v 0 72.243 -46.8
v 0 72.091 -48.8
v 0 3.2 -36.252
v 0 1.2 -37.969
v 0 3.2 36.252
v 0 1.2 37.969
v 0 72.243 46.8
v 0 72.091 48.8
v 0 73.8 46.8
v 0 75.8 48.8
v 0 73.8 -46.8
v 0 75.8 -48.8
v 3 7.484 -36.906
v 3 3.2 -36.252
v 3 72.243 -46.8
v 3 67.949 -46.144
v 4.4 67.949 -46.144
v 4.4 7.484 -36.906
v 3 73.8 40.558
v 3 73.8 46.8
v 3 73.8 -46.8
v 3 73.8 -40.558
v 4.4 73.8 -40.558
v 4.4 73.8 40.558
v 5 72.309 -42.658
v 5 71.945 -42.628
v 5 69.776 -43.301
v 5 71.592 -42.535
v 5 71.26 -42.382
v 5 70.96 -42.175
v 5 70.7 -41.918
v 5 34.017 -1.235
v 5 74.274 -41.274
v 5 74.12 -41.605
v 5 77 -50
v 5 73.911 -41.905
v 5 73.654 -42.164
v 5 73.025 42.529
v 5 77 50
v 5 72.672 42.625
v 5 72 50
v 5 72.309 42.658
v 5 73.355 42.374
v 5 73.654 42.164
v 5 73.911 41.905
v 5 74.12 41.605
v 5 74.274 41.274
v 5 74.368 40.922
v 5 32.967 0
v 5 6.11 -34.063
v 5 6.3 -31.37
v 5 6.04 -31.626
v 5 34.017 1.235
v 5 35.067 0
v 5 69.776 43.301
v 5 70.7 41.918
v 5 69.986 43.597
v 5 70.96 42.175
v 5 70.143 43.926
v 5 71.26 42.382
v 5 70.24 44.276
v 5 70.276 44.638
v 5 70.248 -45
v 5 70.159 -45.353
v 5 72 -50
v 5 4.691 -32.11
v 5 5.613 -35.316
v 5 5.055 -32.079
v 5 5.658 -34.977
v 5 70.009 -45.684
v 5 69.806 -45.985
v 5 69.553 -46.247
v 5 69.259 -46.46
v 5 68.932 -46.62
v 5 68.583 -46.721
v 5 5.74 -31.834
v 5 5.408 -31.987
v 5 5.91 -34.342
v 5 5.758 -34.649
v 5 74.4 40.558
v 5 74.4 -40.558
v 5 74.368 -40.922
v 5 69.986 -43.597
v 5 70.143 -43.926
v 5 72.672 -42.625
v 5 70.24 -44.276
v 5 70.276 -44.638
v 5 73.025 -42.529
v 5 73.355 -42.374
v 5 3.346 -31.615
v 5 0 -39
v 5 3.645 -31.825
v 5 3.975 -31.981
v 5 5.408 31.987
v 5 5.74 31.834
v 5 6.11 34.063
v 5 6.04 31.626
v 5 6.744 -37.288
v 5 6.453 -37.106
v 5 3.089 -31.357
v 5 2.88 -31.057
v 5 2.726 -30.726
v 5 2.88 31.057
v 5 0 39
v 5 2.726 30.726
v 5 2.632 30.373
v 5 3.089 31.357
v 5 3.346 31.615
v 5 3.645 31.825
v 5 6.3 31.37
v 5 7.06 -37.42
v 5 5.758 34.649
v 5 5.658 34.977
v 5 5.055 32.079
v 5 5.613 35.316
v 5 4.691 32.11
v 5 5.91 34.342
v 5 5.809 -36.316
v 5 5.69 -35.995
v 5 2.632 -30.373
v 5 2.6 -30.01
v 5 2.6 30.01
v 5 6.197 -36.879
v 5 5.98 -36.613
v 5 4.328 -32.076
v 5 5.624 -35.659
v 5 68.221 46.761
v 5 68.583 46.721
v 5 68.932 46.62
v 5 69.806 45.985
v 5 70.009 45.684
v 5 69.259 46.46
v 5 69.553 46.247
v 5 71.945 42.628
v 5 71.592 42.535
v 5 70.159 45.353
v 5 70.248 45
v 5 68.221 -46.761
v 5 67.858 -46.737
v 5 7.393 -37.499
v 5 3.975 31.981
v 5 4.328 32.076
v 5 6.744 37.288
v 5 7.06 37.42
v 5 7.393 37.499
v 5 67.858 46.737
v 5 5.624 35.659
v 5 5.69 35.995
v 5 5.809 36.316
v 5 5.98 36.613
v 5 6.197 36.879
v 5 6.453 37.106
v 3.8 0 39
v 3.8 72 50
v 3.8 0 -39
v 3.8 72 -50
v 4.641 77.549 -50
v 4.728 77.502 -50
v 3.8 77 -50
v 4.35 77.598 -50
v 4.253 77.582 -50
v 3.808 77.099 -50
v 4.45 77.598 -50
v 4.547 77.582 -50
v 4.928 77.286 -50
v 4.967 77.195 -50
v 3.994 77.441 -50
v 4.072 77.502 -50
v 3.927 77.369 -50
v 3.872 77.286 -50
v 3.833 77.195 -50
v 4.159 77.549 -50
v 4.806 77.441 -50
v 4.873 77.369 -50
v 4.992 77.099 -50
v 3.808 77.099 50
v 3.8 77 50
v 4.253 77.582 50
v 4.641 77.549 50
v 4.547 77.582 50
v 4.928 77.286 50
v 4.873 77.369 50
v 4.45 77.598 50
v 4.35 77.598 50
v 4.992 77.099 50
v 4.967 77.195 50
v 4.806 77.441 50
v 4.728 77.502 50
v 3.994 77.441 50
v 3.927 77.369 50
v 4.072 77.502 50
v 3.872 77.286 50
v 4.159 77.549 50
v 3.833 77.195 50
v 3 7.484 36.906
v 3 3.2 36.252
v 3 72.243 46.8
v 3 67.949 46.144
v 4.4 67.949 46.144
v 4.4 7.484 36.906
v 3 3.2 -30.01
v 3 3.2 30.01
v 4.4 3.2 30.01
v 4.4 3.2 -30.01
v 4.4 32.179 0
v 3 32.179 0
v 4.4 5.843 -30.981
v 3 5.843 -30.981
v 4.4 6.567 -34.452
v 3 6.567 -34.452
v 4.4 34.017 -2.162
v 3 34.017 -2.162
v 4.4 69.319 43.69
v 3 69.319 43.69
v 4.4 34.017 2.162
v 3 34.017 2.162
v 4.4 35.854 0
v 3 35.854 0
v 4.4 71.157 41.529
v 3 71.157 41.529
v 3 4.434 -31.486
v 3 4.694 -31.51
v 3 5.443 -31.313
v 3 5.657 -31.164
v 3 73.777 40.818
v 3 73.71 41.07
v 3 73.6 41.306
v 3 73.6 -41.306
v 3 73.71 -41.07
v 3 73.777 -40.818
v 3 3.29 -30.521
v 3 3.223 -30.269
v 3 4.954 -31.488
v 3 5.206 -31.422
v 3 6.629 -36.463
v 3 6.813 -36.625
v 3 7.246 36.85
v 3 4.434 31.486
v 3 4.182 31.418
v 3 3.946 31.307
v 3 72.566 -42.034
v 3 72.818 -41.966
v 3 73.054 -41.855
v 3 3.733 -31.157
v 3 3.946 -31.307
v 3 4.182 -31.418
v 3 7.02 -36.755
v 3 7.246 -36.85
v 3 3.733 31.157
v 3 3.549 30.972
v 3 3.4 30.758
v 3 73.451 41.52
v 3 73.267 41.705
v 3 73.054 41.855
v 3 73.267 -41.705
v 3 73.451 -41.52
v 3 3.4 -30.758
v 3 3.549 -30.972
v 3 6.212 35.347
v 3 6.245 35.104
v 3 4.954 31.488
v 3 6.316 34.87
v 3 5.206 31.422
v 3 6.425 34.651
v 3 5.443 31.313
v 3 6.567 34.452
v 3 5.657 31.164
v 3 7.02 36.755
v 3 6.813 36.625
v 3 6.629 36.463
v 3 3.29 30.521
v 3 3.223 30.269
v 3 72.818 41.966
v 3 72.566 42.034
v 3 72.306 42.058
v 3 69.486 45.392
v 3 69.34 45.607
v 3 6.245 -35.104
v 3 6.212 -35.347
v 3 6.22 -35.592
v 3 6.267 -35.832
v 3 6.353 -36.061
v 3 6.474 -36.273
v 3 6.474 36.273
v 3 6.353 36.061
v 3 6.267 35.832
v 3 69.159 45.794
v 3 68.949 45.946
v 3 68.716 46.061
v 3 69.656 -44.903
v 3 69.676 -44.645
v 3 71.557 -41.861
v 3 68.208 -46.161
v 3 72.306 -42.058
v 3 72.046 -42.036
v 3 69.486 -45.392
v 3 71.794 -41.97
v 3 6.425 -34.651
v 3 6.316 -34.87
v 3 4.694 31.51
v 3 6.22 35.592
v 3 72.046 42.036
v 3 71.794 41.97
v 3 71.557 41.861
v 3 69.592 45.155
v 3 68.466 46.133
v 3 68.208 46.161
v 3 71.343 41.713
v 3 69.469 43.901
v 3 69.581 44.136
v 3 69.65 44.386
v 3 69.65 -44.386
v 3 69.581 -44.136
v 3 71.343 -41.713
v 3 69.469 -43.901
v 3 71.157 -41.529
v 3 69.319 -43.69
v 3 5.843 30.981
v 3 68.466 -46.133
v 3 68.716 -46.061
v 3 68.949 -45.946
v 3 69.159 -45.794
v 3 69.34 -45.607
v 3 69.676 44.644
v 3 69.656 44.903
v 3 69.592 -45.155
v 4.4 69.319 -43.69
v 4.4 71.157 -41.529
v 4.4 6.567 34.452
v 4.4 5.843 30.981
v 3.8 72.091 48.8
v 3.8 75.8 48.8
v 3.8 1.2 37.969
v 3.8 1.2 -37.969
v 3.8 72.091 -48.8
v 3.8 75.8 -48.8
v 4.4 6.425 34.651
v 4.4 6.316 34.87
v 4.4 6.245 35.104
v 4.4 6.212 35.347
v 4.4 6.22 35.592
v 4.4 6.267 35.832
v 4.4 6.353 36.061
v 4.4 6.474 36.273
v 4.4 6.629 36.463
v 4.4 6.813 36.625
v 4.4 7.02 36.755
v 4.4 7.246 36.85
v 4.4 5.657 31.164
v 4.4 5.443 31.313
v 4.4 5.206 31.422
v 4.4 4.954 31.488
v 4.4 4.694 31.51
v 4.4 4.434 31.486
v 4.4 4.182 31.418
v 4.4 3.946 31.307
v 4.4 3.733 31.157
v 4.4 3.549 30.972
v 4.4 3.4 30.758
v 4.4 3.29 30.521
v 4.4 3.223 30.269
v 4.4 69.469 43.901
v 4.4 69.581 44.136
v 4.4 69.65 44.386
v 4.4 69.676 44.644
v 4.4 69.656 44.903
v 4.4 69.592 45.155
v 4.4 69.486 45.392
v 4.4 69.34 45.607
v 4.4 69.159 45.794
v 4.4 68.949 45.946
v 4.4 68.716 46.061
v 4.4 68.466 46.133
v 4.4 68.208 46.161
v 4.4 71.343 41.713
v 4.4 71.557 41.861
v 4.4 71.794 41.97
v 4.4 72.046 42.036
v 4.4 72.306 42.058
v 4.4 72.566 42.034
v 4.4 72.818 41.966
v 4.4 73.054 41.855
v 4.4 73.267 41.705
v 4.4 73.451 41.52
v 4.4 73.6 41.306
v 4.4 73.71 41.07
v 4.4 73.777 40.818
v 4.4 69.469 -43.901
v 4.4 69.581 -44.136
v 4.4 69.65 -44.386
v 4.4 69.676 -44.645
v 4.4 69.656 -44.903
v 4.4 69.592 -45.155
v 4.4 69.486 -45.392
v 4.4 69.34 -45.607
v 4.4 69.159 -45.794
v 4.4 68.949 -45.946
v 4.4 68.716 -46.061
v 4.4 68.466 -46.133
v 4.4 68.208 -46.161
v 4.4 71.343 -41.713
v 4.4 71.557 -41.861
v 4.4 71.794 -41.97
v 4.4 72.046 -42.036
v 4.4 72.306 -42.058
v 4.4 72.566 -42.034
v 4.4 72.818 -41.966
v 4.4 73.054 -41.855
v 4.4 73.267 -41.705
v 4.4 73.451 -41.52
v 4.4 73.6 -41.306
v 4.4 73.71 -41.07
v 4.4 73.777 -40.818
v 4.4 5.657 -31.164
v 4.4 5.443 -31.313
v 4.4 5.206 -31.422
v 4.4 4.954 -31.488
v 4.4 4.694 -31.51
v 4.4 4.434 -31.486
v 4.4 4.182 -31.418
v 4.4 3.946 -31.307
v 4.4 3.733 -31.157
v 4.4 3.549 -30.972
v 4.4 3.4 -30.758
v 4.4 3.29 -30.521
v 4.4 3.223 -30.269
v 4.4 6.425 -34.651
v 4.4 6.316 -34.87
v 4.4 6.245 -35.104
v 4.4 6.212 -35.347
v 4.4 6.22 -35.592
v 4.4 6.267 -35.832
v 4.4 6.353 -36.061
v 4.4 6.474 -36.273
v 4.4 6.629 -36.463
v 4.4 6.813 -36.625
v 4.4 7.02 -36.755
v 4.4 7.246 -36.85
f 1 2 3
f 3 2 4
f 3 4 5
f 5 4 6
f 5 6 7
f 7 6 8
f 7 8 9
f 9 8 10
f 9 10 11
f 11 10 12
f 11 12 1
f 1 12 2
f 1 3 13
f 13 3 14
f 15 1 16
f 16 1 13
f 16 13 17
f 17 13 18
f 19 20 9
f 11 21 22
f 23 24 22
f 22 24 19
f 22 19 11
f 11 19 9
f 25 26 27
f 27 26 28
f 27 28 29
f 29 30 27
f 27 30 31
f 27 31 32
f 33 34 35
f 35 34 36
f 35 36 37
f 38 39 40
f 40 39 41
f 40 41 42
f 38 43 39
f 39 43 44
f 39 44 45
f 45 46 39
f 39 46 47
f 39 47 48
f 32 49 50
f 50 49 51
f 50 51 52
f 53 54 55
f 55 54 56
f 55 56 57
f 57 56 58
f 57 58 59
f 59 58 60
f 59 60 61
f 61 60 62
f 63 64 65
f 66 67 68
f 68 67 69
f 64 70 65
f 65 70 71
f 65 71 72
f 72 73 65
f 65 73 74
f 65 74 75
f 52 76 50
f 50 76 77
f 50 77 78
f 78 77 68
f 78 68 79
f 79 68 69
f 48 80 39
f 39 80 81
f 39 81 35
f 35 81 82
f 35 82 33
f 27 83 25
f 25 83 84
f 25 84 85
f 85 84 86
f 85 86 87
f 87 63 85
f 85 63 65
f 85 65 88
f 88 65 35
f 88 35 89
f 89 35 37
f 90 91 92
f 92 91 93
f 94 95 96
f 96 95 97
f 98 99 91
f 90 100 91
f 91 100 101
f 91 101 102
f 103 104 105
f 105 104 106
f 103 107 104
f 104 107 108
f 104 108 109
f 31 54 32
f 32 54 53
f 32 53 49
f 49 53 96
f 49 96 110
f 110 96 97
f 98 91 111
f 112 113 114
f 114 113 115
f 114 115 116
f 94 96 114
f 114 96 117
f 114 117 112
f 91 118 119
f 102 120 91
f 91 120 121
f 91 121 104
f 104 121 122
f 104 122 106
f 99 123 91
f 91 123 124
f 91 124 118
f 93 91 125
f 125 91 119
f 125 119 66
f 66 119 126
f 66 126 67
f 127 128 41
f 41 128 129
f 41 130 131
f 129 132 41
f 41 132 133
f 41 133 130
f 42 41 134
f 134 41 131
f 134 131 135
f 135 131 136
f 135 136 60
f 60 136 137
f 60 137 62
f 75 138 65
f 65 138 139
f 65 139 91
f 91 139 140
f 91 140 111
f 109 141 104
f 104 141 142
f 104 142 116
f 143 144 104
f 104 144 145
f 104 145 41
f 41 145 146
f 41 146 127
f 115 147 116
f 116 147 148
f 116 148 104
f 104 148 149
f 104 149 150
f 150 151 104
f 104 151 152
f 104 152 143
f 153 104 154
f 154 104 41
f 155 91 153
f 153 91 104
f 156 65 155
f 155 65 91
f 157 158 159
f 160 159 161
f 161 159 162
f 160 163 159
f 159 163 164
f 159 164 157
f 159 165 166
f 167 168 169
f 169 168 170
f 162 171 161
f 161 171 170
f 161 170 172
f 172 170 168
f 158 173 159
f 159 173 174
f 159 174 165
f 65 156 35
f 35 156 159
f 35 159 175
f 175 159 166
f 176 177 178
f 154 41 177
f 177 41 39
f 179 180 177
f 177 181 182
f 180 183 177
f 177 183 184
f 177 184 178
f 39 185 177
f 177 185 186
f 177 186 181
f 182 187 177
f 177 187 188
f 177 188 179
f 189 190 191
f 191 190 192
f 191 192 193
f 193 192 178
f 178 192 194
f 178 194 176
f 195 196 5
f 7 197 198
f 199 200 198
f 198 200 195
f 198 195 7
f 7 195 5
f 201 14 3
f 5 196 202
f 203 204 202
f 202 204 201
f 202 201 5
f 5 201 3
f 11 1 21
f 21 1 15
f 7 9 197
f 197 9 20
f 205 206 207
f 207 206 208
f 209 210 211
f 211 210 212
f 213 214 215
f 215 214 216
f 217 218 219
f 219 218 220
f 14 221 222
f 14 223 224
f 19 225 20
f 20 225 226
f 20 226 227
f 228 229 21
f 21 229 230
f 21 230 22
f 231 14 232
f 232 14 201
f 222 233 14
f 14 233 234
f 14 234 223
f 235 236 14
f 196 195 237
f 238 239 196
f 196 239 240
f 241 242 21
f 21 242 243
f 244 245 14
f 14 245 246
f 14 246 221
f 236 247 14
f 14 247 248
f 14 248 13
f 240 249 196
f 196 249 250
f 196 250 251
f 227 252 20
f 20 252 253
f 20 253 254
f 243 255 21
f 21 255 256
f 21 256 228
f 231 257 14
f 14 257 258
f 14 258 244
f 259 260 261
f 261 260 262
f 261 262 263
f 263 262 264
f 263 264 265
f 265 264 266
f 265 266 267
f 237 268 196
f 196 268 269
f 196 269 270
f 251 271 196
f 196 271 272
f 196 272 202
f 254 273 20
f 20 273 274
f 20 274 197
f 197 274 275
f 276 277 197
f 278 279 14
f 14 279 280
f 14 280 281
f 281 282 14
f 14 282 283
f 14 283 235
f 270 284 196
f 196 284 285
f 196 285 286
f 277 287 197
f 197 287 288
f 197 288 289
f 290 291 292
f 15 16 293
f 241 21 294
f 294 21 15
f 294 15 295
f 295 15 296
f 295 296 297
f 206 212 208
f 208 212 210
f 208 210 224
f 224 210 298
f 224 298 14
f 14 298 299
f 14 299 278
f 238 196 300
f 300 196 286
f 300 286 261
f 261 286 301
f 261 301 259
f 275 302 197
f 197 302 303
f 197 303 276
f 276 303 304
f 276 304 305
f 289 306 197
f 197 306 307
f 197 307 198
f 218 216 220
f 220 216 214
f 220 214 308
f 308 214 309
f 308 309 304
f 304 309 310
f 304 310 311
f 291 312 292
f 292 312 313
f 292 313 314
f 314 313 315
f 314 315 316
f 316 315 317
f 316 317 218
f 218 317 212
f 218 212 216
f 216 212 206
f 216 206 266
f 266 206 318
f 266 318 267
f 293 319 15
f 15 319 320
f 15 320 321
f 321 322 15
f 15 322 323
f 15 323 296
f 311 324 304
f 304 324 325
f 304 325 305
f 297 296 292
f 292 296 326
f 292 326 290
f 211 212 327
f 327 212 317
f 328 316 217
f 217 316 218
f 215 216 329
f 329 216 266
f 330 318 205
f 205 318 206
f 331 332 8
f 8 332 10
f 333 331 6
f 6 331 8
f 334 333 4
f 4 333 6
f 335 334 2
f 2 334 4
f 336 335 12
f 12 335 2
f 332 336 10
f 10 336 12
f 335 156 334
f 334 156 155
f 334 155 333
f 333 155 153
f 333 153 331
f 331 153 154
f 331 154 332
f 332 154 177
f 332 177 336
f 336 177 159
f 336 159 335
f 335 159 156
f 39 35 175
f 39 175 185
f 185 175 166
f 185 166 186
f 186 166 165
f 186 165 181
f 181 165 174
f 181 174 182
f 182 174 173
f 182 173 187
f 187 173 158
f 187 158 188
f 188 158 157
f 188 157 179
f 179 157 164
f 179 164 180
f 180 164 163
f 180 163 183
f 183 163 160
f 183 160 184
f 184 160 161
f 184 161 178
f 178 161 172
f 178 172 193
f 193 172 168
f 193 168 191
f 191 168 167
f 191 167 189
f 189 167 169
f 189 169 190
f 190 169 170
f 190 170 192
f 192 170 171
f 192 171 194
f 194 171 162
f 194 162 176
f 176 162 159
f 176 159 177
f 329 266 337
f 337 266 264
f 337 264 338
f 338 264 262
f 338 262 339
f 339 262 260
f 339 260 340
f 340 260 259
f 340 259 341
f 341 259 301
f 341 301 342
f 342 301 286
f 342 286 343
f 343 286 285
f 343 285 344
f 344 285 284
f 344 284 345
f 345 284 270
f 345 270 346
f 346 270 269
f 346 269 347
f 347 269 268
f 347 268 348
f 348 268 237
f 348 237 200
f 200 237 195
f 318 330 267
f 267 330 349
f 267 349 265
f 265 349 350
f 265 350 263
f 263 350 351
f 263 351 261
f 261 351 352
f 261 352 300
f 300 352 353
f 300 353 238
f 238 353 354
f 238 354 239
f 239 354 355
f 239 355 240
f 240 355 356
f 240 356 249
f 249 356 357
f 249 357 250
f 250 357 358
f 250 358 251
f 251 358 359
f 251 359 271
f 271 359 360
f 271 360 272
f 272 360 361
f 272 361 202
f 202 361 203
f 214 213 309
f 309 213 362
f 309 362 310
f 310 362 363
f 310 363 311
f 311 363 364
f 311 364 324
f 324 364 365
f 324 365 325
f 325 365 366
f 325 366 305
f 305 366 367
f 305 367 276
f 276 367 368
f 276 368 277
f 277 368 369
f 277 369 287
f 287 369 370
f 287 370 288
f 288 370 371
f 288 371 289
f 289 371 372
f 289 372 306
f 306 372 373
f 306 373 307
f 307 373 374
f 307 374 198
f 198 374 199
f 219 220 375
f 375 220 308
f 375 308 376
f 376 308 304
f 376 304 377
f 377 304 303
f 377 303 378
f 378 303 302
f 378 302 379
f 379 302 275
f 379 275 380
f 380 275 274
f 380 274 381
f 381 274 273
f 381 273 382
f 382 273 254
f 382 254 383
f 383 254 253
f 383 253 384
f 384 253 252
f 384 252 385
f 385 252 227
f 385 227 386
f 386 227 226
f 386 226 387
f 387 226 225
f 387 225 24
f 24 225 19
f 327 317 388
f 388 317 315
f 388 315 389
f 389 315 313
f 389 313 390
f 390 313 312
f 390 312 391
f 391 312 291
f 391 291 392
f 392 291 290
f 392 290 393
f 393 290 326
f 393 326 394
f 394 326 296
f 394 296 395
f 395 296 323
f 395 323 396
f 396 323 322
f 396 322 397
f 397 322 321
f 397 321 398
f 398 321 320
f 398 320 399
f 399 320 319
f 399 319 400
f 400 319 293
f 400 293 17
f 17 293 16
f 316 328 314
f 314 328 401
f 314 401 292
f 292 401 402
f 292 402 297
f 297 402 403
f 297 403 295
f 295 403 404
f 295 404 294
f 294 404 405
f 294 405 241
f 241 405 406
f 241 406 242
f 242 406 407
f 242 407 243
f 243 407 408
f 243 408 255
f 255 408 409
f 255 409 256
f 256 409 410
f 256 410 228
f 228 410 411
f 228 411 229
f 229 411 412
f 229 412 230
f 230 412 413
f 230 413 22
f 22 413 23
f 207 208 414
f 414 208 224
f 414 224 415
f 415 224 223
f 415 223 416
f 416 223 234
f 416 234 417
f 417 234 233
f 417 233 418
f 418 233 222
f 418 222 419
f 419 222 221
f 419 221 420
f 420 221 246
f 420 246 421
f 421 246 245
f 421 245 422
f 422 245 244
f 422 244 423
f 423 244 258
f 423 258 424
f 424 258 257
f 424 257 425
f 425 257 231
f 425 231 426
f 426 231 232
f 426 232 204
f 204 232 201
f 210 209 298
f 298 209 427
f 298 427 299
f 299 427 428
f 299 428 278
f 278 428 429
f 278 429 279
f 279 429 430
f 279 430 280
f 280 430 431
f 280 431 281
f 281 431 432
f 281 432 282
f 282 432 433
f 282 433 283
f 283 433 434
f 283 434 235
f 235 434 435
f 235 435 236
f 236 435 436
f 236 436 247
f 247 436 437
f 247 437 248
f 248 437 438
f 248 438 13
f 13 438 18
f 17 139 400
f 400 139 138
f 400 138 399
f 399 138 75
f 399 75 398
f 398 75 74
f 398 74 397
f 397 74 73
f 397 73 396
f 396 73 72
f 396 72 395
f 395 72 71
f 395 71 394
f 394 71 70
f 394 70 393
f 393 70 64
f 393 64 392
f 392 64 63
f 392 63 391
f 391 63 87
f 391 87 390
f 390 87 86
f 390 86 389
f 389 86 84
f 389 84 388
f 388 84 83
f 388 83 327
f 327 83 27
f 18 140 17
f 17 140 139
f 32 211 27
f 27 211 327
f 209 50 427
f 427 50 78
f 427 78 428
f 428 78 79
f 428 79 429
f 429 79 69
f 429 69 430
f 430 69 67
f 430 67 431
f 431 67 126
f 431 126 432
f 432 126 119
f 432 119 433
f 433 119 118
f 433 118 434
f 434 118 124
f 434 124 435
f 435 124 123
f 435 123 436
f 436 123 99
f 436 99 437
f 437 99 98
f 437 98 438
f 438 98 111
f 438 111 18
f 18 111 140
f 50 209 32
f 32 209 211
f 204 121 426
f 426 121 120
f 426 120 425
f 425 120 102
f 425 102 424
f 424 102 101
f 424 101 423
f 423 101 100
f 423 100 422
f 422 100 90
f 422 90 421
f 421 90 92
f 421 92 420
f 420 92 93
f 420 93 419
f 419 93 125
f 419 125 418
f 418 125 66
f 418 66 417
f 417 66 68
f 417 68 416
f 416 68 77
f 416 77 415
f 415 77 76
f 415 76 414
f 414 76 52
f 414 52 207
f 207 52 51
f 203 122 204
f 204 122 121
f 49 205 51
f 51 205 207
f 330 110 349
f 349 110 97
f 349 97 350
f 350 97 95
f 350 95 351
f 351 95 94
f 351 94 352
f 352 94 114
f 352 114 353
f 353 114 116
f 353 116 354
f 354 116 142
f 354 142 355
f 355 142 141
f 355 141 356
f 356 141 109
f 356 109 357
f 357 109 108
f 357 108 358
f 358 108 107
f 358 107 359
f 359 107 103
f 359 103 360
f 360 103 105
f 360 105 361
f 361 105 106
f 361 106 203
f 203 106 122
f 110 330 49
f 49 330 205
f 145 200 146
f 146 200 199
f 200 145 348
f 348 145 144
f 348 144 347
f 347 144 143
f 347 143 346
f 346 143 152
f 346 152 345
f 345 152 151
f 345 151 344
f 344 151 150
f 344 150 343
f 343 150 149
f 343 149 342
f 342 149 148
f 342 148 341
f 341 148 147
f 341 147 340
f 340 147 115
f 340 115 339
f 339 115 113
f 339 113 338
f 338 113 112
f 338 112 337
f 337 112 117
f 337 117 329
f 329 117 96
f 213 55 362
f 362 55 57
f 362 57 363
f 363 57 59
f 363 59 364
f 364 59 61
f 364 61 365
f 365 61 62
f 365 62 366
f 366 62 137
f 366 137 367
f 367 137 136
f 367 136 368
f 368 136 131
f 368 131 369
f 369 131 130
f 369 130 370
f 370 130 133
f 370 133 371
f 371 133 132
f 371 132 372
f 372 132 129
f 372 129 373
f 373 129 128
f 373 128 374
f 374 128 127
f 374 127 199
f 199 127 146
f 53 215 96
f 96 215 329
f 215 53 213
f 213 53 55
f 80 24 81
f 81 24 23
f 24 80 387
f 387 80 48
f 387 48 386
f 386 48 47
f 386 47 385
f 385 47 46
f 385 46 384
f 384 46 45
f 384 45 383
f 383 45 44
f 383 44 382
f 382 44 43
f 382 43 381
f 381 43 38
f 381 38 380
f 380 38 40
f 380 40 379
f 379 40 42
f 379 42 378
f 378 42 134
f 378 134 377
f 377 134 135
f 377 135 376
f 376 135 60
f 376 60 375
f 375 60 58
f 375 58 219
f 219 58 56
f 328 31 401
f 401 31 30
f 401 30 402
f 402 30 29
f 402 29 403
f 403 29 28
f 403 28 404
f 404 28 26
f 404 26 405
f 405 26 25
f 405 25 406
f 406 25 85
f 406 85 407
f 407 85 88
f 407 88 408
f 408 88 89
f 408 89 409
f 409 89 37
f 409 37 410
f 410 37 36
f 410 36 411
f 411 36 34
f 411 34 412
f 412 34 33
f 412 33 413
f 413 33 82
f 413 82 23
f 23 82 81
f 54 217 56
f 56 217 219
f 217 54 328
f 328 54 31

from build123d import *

# Parameters (mm, degrees)
EXTRUDE_THIN1_DEPTH          = 5
EXTRUDE_THIN2_DEPTH          = 2
CUT_EXTRUDE_THIN1_DEPTH      = 1
CUT_EXTRUDE_THIN1_DEPTH_BACK = 3.8
BOSS_EXTRUDE1_DEPTH          = 100
FILLET1_R                    = 1.5
CHAMFER1_SIZE                = 0.6


with BuildPart() as part:
    # Sketch1 → Extrude-Thin1 (new body)
    with BuildSketch(Plane(origin=(0, 0, 0), x_dir=(0, 0, -1), z_dir=(1, 0, 0))):
        Polygon((50, 77), (-50, 77), (-50, 72), (-39, 0), (39, 0), (50, 72), align=None)
        Polygon((46.8, 73.8), (-46.8, 73.8), (-46.8, 72.243034455), (-36.251758625, 3.2), (36.251758625, 3.2), (46.8, 72.243034455), align=None, mode=Mode.SUBTRACT)
    extrude(amount=EXTRUDE_THIN1_DEPTH)

    # Sketch3 → Extrude-Thin2 (add)
    with BuildSketch(Plane(origin=(5, 0, 0), x_dir=(0, 0, -1), z_dir=(1, 0, 0))):
        Polygon((-47.706752564, 72.733323016), (35.345006061, 2.133323016), (37.158511189, 4.266676984), (-45.893247436, 74.866676984), align=None)
        Polygon((45.893247436, 74.866676984), (-37.158511189, 4.266676984), (-35.345006061, 2.133323016), (47.706752564, 72.733323016), align=None)
    extrude(amount=-EXTRUDE_THIN2_DEPTH)

    # Sketch4 → Cut-Extrude-Thin1 (cut, two sides)
    with BuildSketch(Plane.ZY) as cut_extrude_thin1_sk:
        Polygon((50, 77), (50, 72), (39, 0), (-39, 0), (-50, 72), (-50, 77), align=None)
        Polygon((48.8, 75.8), (48.8, 72.091137921), (37.969409484, 1.2), (-37.969409484, 1.2), (-48.8, 72.091137921), (-48.8, 75.8), align=None, mode=Mode.SUBTRACT)
    extrude(amount=CUT_EXTRUDE_THIN1_DEPTH, mode=Mode.SUBTRACT)
    extrude(cut_extrude_thin1_sk.sketch, amount=-CUT_EXTRUDE_THIN1_DEPTH_BACK, mode=Mode.SUBTRACT)

    # Sketch5 → Boss-Extrude1 (add)
    with BuildSketch(Plane(origin=(0, 0, -50), x_dir=(-1, 0, 0), z_dir=(0, 0, -1))):
        with BuildLine():
            Line((-5, 77), (-3.8, 77))
            ThreePointArc((-3.8, 77), (-4.4, 77.6), (-5, 77))
        make_face()
    extrude(amount=-BOSS_EXTRUDE1_DEPTH)

    # Fillet1
    fillet1_edges = [part.edges().sort_by_distance(p)[0] for p in [
        (4, 73.8, -44.638440079),
        (4, 73.8, 44.638440079),
        (4, 71.92064886, -46.750746645),
        (4, 4.826274454, -36.500217222),
        (4, 3.2, 34.090198704),
        (4, 3.2, -34.090198704),
        (4, 4.826274454, 36.500217222),
        (4, 71.92064886, 46.750746645),
    ]]
    fillet(fillet1_edges, radius=FILLET1_R)

    # Chamfer1
    chamfer1_edges = [part.edges().sort_by_distance(p)[0] for p in [
        (5, 37.716457047, 41.525106229),
        (5, 3.2, 0),
        (5, 51.667563114, 22.92561366),
        (5, 73.8, 0),
        (5, 53.505615047, 20.764723924),
        (5, 37.716457047, -41.525106229),
        (5, 51.667563114, -22.92561366),
        (5, 53.505615047, -20.764723924),
        (5, 6.30509587, 35.948092357),
        (5, 4.18245884, 31.417574766),
        (5, 69.485539395, 45.392056481),
        (5, 72.81754116, 41.965816141),
        (5, 69.485539395, -45.392056481),
        (5, 72.81754116, -41.965816141),
        (5, 4.18245884, -31.417574766),
        (5, 6.30509587, -35.948092357),
        (5, 20.292048094, -18.306737062),
        (5, 19.011001017, -15.490603236),
        (5, 20.292048094, 18.306737062),
        (5, 19.011001017, 15.490603236),
    ]]
    chamfer(chamfer1_edges, length=CHAMFER1_SIZE)


solid = part.part
